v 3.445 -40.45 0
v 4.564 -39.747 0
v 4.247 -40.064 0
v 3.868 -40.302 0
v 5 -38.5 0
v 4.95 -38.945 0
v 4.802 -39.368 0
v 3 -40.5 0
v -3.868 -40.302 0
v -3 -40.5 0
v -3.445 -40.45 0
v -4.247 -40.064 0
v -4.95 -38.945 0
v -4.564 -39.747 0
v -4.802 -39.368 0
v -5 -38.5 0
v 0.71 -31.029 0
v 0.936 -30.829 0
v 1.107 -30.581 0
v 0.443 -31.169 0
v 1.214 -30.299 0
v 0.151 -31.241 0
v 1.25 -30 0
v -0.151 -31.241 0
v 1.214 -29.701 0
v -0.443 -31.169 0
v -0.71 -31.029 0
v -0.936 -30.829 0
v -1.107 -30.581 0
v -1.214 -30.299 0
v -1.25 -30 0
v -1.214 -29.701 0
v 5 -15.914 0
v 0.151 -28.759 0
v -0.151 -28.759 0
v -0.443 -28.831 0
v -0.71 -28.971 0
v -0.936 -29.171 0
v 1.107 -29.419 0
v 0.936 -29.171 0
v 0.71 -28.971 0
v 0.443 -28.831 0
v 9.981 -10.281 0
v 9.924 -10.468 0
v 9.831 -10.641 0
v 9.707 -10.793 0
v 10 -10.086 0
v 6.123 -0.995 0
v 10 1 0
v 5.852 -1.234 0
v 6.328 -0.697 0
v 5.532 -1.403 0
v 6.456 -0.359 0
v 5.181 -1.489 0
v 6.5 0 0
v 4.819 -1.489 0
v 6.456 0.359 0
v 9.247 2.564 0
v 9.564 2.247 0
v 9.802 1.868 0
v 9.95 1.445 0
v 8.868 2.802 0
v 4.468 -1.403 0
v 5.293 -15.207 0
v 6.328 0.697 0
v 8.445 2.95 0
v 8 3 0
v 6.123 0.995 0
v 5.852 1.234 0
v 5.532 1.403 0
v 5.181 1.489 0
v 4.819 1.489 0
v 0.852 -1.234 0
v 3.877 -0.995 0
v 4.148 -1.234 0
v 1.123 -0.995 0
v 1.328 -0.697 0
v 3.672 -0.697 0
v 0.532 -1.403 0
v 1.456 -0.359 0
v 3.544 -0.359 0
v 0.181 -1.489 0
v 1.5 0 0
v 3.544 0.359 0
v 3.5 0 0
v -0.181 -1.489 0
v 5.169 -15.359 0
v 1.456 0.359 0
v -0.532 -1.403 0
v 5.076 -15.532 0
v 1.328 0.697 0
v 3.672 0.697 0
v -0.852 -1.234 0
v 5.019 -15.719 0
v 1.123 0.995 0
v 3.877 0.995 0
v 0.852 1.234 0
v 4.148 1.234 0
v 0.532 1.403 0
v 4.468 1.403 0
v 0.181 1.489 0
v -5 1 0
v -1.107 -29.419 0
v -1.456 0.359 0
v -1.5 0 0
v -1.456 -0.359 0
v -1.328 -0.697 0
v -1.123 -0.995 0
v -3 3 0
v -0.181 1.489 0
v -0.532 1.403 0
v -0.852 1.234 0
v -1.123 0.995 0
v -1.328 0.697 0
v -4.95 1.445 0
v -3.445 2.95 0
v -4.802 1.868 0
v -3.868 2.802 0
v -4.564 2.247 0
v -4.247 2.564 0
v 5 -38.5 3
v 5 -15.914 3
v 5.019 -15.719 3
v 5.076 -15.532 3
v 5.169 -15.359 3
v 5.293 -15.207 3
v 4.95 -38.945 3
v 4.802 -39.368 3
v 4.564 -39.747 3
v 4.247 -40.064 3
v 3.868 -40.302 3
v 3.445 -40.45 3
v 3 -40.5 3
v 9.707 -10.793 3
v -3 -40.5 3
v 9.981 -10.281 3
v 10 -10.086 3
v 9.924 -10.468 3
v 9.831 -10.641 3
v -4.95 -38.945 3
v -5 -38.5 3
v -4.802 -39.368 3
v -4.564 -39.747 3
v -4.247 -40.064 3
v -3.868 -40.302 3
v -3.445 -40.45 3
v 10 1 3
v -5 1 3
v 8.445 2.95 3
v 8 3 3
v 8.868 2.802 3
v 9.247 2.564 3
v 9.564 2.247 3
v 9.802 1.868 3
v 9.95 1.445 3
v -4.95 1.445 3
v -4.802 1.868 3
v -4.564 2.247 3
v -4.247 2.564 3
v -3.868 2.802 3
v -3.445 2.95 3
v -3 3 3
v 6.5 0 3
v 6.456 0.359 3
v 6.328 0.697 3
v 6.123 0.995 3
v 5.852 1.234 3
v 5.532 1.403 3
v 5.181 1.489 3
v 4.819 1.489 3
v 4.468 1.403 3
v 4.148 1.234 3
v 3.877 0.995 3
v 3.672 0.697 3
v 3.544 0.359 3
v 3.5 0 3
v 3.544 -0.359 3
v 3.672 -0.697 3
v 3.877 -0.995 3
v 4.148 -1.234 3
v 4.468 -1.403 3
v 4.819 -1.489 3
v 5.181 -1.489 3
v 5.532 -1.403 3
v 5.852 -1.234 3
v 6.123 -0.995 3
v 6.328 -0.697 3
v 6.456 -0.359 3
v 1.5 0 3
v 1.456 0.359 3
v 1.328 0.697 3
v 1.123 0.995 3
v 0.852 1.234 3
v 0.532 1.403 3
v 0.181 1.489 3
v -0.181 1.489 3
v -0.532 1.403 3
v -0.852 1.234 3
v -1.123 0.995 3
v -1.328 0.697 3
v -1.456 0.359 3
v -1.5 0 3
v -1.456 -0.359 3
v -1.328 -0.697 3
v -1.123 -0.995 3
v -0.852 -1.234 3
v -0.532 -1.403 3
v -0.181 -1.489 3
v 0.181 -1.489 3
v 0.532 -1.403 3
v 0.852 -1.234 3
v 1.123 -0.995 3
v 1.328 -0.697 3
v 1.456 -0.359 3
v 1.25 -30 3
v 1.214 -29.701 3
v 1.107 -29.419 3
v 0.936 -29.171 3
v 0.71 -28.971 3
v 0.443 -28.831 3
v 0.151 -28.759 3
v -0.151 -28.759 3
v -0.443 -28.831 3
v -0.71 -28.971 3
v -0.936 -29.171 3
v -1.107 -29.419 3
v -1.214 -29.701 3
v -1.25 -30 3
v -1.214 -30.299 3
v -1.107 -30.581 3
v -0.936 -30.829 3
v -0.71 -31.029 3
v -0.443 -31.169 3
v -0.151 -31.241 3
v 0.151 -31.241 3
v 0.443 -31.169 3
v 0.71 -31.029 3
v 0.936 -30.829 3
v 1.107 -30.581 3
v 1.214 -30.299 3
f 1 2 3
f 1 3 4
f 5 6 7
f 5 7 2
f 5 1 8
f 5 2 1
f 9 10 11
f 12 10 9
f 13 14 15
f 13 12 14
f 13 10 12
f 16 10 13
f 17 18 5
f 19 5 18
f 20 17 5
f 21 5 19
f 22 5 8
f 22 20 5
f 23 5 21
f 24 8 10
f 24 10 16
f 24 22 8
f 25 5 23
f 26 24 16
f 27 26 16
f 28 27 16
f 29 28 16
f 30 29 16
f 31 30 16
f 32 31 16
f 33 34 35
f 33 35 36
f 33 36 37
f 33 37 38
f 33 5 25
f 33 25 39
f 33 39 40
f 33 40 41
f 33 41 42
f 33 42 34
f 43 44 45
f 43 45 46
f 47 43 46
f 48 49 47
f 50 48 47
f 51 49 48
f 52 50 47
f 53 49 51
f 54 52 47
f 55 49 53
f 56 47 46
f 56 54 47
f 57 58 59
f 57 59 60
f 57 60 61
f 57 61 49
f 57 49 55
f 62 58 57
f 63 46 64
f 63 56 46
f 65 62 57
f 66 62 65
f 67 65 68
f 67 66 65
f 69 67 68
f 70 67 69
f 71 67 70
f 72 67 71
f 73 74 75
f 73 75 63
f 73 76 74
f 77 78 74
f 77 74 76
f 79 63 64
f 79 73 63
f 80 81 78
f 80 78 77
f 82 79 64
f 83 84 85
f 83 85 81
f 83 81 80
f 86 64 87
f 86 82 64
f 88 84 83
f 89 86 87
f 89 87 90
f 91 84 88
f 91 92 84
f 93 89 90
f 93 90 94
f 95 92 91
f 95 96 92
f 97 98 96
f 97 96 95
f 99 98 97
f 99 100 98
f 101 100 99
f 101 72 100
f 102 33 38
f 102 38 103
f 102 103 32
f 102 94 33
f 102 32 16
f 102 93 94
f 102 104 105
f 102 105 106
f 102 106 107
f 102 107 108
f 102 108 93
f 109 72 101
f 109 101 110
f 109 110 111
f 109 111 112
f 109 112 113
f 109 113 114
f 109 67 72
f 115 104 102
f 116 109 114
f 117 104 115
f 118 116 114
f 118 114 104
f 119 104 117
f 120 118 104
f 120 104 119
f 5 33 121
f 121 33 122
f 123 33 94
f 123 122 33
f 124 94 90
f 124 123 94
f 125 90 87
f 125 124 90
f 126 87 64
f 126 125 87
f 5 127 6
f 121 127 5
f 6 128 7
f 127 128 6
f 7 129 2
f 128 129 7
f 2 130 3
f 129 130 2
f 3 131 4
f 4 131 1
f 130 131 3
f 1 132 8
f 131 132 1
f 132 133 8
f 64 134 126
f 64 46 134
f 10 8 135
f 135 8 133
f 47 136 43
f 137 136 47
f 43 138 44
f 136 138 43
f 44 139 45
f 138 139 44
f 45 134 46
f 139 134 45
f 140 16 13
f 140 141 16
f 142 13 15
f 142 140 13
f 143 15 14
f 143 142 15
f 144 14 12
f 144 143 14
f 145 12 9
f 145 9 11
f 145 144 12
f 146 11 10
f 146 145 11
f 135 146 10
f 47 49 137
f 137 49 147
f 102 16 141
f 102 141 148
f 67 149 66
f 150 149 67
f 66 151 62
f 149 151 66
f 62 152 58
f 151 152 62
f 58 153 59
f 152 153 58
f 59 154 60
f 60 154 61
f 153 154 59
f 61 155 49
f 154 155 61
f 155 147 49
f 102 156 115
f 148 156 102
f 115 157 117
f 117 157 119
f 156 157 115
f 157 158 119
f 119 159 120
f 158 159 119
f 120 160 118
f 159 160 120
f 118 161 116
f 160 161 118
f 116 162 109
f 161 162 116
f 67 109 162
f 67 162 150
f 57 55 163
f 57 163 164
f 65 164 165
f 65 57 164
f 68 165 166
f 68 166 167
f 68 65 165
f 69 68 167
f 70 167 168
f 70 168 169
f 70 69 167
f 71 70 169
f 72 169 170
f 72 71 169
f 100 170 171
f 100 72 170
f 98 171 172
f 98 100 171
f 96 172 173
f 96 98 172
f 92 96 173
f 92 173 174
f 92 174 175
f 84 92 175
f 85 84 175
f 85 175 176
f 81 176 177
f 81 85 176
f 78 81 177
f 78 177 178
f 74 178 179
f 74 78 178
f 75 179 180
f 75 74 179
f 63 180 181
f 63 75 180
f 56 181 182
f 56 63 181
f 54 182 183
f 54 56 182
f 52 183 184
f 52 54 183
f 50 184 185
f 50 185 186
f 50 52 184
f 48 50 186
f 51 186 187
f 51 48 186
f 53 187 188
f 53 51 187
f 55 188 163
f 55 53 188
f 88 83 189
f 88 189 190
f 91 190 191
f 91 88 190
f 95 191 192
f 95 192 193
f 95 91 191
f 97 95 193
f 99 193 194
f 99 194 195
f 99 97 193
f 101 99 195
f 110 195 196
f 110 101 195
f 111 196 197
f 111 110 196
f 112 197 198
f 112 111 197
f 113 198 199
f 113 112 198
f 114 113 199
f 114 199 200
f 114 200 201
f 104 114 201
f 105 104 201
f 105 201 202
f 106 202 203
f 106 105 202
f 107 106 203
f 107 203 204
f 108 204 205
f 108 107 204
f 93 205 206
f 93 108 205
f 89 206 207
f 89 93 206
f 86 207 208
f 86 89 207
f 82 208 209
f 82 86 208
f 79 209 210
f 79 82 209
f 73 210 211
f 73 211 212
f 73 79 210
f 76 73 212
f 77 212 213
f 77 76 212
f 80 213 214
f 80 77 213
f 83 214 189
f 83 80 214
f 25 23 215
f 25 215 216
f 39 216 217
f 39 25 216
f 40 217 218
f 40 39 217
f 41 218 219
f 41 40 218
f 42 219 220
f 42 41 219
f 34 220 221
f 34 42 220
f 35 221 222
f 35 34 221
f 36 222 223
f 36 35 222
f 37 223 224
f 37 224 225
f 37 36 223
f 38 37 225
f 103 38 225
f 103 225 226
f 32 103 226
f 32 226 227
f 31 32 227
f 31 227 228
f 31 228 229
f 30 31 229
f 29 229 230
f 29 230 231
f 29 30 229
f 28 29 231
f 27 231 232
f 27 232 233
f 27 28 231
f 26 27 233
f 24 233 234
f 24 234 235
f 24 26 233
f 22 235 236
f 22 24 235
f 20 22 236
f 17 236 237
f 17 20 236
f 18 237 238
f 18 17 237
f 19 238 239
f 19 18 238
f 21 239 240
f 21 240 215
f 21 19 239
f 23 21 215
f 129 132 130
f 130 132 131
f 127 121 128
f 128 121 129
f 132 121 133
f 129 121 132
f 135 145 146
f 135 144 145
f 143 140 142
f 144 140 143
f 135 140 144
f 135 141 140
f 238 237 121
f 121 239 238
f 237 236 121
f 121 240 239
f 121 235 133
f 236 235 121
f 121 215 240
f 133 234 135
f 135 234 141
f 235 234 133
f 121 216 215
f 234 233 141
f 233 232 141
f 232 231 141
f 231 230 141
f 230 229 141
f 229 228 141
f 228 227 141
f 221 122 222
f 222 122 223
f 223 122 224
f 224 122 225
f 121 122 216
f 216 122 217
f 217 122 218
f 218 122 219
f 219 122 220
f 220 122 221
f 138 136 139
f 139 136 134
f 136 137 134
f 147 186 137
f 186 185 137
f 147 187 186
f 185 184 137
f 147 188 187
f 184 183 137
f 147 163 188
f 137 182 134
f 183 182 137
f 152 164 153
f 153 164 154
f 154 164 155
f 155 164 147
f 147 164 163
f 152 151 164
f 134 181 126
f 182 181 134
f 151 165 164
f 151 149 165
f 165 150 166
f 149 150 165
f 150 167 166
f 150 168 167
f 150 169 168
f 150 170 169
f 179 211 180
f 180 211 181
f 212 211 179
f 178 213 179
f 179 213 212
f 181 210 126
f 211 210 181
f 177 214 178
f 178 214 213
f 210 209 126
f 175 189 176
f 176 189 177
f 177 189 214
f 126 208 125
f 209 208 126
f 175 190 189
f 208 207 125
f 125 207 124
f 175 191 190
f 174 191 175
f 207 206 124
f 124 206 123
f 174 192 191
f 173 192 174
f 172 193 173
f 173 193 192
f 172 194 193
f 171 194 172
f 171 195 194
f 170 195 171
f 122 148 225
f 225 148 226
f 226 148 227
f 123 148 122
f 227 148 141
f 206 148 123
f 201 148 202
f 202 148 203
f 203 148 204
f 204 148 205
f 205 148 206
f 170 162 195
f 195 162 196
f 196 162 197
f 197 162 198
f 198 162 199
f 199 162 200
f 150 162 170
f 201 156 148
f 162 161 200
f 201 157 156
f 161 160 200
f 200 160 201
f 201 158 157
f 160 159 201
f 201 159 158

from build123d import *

# Parameters (mm, degrees)
SKETCH_R    = 1.5
SKETCH_R_2  = 1.25
PAD_DEPTH   = 3
FILLET_R    = 2
FILLET001_R = 1


with BuildPart() as part:
    # Sketch → Pad (new body)
    with BuildSketch(Plane.XY):
        Polygon((-5, -40.5), (-5, 3), (10, 3), (10, -10.5), (5, -15.5), (5, -40.5), align=None)
        Circle(SKETCH_R, mode=Mode.SUBTRACT)
        with Locations((5, 0)):
            Circle(SKETCH_R, mode=Mode.SUBTRACT)
        with Locations((0, -30)):
            Circle(SKETCH_R_2, mode=Mode.SUBTRACT)
    extrude(amount=PAD_DEPTH)

    # Fillet
    fillet_edges = [part.edges().sort_by_distance(p)[0] for p in [
        (10, 3, 1.5),
        (-5, 3, 1.5),
        (-5, -40.5, 1.5),
        (5, -40.5, 1.5),
    ]]
    fillet(fillet_edges, radius=FILLET_R)

    # Fillet001
    fillet001_edges = [part.edges().sort_by_distance(p)[0] for p in [
        (10, -10.5, 1.5),
        (5, -15.5, 1.5),
    ]]
    fillet(fillet001_edges, radius=FILLET001_R)


solid = part.part
